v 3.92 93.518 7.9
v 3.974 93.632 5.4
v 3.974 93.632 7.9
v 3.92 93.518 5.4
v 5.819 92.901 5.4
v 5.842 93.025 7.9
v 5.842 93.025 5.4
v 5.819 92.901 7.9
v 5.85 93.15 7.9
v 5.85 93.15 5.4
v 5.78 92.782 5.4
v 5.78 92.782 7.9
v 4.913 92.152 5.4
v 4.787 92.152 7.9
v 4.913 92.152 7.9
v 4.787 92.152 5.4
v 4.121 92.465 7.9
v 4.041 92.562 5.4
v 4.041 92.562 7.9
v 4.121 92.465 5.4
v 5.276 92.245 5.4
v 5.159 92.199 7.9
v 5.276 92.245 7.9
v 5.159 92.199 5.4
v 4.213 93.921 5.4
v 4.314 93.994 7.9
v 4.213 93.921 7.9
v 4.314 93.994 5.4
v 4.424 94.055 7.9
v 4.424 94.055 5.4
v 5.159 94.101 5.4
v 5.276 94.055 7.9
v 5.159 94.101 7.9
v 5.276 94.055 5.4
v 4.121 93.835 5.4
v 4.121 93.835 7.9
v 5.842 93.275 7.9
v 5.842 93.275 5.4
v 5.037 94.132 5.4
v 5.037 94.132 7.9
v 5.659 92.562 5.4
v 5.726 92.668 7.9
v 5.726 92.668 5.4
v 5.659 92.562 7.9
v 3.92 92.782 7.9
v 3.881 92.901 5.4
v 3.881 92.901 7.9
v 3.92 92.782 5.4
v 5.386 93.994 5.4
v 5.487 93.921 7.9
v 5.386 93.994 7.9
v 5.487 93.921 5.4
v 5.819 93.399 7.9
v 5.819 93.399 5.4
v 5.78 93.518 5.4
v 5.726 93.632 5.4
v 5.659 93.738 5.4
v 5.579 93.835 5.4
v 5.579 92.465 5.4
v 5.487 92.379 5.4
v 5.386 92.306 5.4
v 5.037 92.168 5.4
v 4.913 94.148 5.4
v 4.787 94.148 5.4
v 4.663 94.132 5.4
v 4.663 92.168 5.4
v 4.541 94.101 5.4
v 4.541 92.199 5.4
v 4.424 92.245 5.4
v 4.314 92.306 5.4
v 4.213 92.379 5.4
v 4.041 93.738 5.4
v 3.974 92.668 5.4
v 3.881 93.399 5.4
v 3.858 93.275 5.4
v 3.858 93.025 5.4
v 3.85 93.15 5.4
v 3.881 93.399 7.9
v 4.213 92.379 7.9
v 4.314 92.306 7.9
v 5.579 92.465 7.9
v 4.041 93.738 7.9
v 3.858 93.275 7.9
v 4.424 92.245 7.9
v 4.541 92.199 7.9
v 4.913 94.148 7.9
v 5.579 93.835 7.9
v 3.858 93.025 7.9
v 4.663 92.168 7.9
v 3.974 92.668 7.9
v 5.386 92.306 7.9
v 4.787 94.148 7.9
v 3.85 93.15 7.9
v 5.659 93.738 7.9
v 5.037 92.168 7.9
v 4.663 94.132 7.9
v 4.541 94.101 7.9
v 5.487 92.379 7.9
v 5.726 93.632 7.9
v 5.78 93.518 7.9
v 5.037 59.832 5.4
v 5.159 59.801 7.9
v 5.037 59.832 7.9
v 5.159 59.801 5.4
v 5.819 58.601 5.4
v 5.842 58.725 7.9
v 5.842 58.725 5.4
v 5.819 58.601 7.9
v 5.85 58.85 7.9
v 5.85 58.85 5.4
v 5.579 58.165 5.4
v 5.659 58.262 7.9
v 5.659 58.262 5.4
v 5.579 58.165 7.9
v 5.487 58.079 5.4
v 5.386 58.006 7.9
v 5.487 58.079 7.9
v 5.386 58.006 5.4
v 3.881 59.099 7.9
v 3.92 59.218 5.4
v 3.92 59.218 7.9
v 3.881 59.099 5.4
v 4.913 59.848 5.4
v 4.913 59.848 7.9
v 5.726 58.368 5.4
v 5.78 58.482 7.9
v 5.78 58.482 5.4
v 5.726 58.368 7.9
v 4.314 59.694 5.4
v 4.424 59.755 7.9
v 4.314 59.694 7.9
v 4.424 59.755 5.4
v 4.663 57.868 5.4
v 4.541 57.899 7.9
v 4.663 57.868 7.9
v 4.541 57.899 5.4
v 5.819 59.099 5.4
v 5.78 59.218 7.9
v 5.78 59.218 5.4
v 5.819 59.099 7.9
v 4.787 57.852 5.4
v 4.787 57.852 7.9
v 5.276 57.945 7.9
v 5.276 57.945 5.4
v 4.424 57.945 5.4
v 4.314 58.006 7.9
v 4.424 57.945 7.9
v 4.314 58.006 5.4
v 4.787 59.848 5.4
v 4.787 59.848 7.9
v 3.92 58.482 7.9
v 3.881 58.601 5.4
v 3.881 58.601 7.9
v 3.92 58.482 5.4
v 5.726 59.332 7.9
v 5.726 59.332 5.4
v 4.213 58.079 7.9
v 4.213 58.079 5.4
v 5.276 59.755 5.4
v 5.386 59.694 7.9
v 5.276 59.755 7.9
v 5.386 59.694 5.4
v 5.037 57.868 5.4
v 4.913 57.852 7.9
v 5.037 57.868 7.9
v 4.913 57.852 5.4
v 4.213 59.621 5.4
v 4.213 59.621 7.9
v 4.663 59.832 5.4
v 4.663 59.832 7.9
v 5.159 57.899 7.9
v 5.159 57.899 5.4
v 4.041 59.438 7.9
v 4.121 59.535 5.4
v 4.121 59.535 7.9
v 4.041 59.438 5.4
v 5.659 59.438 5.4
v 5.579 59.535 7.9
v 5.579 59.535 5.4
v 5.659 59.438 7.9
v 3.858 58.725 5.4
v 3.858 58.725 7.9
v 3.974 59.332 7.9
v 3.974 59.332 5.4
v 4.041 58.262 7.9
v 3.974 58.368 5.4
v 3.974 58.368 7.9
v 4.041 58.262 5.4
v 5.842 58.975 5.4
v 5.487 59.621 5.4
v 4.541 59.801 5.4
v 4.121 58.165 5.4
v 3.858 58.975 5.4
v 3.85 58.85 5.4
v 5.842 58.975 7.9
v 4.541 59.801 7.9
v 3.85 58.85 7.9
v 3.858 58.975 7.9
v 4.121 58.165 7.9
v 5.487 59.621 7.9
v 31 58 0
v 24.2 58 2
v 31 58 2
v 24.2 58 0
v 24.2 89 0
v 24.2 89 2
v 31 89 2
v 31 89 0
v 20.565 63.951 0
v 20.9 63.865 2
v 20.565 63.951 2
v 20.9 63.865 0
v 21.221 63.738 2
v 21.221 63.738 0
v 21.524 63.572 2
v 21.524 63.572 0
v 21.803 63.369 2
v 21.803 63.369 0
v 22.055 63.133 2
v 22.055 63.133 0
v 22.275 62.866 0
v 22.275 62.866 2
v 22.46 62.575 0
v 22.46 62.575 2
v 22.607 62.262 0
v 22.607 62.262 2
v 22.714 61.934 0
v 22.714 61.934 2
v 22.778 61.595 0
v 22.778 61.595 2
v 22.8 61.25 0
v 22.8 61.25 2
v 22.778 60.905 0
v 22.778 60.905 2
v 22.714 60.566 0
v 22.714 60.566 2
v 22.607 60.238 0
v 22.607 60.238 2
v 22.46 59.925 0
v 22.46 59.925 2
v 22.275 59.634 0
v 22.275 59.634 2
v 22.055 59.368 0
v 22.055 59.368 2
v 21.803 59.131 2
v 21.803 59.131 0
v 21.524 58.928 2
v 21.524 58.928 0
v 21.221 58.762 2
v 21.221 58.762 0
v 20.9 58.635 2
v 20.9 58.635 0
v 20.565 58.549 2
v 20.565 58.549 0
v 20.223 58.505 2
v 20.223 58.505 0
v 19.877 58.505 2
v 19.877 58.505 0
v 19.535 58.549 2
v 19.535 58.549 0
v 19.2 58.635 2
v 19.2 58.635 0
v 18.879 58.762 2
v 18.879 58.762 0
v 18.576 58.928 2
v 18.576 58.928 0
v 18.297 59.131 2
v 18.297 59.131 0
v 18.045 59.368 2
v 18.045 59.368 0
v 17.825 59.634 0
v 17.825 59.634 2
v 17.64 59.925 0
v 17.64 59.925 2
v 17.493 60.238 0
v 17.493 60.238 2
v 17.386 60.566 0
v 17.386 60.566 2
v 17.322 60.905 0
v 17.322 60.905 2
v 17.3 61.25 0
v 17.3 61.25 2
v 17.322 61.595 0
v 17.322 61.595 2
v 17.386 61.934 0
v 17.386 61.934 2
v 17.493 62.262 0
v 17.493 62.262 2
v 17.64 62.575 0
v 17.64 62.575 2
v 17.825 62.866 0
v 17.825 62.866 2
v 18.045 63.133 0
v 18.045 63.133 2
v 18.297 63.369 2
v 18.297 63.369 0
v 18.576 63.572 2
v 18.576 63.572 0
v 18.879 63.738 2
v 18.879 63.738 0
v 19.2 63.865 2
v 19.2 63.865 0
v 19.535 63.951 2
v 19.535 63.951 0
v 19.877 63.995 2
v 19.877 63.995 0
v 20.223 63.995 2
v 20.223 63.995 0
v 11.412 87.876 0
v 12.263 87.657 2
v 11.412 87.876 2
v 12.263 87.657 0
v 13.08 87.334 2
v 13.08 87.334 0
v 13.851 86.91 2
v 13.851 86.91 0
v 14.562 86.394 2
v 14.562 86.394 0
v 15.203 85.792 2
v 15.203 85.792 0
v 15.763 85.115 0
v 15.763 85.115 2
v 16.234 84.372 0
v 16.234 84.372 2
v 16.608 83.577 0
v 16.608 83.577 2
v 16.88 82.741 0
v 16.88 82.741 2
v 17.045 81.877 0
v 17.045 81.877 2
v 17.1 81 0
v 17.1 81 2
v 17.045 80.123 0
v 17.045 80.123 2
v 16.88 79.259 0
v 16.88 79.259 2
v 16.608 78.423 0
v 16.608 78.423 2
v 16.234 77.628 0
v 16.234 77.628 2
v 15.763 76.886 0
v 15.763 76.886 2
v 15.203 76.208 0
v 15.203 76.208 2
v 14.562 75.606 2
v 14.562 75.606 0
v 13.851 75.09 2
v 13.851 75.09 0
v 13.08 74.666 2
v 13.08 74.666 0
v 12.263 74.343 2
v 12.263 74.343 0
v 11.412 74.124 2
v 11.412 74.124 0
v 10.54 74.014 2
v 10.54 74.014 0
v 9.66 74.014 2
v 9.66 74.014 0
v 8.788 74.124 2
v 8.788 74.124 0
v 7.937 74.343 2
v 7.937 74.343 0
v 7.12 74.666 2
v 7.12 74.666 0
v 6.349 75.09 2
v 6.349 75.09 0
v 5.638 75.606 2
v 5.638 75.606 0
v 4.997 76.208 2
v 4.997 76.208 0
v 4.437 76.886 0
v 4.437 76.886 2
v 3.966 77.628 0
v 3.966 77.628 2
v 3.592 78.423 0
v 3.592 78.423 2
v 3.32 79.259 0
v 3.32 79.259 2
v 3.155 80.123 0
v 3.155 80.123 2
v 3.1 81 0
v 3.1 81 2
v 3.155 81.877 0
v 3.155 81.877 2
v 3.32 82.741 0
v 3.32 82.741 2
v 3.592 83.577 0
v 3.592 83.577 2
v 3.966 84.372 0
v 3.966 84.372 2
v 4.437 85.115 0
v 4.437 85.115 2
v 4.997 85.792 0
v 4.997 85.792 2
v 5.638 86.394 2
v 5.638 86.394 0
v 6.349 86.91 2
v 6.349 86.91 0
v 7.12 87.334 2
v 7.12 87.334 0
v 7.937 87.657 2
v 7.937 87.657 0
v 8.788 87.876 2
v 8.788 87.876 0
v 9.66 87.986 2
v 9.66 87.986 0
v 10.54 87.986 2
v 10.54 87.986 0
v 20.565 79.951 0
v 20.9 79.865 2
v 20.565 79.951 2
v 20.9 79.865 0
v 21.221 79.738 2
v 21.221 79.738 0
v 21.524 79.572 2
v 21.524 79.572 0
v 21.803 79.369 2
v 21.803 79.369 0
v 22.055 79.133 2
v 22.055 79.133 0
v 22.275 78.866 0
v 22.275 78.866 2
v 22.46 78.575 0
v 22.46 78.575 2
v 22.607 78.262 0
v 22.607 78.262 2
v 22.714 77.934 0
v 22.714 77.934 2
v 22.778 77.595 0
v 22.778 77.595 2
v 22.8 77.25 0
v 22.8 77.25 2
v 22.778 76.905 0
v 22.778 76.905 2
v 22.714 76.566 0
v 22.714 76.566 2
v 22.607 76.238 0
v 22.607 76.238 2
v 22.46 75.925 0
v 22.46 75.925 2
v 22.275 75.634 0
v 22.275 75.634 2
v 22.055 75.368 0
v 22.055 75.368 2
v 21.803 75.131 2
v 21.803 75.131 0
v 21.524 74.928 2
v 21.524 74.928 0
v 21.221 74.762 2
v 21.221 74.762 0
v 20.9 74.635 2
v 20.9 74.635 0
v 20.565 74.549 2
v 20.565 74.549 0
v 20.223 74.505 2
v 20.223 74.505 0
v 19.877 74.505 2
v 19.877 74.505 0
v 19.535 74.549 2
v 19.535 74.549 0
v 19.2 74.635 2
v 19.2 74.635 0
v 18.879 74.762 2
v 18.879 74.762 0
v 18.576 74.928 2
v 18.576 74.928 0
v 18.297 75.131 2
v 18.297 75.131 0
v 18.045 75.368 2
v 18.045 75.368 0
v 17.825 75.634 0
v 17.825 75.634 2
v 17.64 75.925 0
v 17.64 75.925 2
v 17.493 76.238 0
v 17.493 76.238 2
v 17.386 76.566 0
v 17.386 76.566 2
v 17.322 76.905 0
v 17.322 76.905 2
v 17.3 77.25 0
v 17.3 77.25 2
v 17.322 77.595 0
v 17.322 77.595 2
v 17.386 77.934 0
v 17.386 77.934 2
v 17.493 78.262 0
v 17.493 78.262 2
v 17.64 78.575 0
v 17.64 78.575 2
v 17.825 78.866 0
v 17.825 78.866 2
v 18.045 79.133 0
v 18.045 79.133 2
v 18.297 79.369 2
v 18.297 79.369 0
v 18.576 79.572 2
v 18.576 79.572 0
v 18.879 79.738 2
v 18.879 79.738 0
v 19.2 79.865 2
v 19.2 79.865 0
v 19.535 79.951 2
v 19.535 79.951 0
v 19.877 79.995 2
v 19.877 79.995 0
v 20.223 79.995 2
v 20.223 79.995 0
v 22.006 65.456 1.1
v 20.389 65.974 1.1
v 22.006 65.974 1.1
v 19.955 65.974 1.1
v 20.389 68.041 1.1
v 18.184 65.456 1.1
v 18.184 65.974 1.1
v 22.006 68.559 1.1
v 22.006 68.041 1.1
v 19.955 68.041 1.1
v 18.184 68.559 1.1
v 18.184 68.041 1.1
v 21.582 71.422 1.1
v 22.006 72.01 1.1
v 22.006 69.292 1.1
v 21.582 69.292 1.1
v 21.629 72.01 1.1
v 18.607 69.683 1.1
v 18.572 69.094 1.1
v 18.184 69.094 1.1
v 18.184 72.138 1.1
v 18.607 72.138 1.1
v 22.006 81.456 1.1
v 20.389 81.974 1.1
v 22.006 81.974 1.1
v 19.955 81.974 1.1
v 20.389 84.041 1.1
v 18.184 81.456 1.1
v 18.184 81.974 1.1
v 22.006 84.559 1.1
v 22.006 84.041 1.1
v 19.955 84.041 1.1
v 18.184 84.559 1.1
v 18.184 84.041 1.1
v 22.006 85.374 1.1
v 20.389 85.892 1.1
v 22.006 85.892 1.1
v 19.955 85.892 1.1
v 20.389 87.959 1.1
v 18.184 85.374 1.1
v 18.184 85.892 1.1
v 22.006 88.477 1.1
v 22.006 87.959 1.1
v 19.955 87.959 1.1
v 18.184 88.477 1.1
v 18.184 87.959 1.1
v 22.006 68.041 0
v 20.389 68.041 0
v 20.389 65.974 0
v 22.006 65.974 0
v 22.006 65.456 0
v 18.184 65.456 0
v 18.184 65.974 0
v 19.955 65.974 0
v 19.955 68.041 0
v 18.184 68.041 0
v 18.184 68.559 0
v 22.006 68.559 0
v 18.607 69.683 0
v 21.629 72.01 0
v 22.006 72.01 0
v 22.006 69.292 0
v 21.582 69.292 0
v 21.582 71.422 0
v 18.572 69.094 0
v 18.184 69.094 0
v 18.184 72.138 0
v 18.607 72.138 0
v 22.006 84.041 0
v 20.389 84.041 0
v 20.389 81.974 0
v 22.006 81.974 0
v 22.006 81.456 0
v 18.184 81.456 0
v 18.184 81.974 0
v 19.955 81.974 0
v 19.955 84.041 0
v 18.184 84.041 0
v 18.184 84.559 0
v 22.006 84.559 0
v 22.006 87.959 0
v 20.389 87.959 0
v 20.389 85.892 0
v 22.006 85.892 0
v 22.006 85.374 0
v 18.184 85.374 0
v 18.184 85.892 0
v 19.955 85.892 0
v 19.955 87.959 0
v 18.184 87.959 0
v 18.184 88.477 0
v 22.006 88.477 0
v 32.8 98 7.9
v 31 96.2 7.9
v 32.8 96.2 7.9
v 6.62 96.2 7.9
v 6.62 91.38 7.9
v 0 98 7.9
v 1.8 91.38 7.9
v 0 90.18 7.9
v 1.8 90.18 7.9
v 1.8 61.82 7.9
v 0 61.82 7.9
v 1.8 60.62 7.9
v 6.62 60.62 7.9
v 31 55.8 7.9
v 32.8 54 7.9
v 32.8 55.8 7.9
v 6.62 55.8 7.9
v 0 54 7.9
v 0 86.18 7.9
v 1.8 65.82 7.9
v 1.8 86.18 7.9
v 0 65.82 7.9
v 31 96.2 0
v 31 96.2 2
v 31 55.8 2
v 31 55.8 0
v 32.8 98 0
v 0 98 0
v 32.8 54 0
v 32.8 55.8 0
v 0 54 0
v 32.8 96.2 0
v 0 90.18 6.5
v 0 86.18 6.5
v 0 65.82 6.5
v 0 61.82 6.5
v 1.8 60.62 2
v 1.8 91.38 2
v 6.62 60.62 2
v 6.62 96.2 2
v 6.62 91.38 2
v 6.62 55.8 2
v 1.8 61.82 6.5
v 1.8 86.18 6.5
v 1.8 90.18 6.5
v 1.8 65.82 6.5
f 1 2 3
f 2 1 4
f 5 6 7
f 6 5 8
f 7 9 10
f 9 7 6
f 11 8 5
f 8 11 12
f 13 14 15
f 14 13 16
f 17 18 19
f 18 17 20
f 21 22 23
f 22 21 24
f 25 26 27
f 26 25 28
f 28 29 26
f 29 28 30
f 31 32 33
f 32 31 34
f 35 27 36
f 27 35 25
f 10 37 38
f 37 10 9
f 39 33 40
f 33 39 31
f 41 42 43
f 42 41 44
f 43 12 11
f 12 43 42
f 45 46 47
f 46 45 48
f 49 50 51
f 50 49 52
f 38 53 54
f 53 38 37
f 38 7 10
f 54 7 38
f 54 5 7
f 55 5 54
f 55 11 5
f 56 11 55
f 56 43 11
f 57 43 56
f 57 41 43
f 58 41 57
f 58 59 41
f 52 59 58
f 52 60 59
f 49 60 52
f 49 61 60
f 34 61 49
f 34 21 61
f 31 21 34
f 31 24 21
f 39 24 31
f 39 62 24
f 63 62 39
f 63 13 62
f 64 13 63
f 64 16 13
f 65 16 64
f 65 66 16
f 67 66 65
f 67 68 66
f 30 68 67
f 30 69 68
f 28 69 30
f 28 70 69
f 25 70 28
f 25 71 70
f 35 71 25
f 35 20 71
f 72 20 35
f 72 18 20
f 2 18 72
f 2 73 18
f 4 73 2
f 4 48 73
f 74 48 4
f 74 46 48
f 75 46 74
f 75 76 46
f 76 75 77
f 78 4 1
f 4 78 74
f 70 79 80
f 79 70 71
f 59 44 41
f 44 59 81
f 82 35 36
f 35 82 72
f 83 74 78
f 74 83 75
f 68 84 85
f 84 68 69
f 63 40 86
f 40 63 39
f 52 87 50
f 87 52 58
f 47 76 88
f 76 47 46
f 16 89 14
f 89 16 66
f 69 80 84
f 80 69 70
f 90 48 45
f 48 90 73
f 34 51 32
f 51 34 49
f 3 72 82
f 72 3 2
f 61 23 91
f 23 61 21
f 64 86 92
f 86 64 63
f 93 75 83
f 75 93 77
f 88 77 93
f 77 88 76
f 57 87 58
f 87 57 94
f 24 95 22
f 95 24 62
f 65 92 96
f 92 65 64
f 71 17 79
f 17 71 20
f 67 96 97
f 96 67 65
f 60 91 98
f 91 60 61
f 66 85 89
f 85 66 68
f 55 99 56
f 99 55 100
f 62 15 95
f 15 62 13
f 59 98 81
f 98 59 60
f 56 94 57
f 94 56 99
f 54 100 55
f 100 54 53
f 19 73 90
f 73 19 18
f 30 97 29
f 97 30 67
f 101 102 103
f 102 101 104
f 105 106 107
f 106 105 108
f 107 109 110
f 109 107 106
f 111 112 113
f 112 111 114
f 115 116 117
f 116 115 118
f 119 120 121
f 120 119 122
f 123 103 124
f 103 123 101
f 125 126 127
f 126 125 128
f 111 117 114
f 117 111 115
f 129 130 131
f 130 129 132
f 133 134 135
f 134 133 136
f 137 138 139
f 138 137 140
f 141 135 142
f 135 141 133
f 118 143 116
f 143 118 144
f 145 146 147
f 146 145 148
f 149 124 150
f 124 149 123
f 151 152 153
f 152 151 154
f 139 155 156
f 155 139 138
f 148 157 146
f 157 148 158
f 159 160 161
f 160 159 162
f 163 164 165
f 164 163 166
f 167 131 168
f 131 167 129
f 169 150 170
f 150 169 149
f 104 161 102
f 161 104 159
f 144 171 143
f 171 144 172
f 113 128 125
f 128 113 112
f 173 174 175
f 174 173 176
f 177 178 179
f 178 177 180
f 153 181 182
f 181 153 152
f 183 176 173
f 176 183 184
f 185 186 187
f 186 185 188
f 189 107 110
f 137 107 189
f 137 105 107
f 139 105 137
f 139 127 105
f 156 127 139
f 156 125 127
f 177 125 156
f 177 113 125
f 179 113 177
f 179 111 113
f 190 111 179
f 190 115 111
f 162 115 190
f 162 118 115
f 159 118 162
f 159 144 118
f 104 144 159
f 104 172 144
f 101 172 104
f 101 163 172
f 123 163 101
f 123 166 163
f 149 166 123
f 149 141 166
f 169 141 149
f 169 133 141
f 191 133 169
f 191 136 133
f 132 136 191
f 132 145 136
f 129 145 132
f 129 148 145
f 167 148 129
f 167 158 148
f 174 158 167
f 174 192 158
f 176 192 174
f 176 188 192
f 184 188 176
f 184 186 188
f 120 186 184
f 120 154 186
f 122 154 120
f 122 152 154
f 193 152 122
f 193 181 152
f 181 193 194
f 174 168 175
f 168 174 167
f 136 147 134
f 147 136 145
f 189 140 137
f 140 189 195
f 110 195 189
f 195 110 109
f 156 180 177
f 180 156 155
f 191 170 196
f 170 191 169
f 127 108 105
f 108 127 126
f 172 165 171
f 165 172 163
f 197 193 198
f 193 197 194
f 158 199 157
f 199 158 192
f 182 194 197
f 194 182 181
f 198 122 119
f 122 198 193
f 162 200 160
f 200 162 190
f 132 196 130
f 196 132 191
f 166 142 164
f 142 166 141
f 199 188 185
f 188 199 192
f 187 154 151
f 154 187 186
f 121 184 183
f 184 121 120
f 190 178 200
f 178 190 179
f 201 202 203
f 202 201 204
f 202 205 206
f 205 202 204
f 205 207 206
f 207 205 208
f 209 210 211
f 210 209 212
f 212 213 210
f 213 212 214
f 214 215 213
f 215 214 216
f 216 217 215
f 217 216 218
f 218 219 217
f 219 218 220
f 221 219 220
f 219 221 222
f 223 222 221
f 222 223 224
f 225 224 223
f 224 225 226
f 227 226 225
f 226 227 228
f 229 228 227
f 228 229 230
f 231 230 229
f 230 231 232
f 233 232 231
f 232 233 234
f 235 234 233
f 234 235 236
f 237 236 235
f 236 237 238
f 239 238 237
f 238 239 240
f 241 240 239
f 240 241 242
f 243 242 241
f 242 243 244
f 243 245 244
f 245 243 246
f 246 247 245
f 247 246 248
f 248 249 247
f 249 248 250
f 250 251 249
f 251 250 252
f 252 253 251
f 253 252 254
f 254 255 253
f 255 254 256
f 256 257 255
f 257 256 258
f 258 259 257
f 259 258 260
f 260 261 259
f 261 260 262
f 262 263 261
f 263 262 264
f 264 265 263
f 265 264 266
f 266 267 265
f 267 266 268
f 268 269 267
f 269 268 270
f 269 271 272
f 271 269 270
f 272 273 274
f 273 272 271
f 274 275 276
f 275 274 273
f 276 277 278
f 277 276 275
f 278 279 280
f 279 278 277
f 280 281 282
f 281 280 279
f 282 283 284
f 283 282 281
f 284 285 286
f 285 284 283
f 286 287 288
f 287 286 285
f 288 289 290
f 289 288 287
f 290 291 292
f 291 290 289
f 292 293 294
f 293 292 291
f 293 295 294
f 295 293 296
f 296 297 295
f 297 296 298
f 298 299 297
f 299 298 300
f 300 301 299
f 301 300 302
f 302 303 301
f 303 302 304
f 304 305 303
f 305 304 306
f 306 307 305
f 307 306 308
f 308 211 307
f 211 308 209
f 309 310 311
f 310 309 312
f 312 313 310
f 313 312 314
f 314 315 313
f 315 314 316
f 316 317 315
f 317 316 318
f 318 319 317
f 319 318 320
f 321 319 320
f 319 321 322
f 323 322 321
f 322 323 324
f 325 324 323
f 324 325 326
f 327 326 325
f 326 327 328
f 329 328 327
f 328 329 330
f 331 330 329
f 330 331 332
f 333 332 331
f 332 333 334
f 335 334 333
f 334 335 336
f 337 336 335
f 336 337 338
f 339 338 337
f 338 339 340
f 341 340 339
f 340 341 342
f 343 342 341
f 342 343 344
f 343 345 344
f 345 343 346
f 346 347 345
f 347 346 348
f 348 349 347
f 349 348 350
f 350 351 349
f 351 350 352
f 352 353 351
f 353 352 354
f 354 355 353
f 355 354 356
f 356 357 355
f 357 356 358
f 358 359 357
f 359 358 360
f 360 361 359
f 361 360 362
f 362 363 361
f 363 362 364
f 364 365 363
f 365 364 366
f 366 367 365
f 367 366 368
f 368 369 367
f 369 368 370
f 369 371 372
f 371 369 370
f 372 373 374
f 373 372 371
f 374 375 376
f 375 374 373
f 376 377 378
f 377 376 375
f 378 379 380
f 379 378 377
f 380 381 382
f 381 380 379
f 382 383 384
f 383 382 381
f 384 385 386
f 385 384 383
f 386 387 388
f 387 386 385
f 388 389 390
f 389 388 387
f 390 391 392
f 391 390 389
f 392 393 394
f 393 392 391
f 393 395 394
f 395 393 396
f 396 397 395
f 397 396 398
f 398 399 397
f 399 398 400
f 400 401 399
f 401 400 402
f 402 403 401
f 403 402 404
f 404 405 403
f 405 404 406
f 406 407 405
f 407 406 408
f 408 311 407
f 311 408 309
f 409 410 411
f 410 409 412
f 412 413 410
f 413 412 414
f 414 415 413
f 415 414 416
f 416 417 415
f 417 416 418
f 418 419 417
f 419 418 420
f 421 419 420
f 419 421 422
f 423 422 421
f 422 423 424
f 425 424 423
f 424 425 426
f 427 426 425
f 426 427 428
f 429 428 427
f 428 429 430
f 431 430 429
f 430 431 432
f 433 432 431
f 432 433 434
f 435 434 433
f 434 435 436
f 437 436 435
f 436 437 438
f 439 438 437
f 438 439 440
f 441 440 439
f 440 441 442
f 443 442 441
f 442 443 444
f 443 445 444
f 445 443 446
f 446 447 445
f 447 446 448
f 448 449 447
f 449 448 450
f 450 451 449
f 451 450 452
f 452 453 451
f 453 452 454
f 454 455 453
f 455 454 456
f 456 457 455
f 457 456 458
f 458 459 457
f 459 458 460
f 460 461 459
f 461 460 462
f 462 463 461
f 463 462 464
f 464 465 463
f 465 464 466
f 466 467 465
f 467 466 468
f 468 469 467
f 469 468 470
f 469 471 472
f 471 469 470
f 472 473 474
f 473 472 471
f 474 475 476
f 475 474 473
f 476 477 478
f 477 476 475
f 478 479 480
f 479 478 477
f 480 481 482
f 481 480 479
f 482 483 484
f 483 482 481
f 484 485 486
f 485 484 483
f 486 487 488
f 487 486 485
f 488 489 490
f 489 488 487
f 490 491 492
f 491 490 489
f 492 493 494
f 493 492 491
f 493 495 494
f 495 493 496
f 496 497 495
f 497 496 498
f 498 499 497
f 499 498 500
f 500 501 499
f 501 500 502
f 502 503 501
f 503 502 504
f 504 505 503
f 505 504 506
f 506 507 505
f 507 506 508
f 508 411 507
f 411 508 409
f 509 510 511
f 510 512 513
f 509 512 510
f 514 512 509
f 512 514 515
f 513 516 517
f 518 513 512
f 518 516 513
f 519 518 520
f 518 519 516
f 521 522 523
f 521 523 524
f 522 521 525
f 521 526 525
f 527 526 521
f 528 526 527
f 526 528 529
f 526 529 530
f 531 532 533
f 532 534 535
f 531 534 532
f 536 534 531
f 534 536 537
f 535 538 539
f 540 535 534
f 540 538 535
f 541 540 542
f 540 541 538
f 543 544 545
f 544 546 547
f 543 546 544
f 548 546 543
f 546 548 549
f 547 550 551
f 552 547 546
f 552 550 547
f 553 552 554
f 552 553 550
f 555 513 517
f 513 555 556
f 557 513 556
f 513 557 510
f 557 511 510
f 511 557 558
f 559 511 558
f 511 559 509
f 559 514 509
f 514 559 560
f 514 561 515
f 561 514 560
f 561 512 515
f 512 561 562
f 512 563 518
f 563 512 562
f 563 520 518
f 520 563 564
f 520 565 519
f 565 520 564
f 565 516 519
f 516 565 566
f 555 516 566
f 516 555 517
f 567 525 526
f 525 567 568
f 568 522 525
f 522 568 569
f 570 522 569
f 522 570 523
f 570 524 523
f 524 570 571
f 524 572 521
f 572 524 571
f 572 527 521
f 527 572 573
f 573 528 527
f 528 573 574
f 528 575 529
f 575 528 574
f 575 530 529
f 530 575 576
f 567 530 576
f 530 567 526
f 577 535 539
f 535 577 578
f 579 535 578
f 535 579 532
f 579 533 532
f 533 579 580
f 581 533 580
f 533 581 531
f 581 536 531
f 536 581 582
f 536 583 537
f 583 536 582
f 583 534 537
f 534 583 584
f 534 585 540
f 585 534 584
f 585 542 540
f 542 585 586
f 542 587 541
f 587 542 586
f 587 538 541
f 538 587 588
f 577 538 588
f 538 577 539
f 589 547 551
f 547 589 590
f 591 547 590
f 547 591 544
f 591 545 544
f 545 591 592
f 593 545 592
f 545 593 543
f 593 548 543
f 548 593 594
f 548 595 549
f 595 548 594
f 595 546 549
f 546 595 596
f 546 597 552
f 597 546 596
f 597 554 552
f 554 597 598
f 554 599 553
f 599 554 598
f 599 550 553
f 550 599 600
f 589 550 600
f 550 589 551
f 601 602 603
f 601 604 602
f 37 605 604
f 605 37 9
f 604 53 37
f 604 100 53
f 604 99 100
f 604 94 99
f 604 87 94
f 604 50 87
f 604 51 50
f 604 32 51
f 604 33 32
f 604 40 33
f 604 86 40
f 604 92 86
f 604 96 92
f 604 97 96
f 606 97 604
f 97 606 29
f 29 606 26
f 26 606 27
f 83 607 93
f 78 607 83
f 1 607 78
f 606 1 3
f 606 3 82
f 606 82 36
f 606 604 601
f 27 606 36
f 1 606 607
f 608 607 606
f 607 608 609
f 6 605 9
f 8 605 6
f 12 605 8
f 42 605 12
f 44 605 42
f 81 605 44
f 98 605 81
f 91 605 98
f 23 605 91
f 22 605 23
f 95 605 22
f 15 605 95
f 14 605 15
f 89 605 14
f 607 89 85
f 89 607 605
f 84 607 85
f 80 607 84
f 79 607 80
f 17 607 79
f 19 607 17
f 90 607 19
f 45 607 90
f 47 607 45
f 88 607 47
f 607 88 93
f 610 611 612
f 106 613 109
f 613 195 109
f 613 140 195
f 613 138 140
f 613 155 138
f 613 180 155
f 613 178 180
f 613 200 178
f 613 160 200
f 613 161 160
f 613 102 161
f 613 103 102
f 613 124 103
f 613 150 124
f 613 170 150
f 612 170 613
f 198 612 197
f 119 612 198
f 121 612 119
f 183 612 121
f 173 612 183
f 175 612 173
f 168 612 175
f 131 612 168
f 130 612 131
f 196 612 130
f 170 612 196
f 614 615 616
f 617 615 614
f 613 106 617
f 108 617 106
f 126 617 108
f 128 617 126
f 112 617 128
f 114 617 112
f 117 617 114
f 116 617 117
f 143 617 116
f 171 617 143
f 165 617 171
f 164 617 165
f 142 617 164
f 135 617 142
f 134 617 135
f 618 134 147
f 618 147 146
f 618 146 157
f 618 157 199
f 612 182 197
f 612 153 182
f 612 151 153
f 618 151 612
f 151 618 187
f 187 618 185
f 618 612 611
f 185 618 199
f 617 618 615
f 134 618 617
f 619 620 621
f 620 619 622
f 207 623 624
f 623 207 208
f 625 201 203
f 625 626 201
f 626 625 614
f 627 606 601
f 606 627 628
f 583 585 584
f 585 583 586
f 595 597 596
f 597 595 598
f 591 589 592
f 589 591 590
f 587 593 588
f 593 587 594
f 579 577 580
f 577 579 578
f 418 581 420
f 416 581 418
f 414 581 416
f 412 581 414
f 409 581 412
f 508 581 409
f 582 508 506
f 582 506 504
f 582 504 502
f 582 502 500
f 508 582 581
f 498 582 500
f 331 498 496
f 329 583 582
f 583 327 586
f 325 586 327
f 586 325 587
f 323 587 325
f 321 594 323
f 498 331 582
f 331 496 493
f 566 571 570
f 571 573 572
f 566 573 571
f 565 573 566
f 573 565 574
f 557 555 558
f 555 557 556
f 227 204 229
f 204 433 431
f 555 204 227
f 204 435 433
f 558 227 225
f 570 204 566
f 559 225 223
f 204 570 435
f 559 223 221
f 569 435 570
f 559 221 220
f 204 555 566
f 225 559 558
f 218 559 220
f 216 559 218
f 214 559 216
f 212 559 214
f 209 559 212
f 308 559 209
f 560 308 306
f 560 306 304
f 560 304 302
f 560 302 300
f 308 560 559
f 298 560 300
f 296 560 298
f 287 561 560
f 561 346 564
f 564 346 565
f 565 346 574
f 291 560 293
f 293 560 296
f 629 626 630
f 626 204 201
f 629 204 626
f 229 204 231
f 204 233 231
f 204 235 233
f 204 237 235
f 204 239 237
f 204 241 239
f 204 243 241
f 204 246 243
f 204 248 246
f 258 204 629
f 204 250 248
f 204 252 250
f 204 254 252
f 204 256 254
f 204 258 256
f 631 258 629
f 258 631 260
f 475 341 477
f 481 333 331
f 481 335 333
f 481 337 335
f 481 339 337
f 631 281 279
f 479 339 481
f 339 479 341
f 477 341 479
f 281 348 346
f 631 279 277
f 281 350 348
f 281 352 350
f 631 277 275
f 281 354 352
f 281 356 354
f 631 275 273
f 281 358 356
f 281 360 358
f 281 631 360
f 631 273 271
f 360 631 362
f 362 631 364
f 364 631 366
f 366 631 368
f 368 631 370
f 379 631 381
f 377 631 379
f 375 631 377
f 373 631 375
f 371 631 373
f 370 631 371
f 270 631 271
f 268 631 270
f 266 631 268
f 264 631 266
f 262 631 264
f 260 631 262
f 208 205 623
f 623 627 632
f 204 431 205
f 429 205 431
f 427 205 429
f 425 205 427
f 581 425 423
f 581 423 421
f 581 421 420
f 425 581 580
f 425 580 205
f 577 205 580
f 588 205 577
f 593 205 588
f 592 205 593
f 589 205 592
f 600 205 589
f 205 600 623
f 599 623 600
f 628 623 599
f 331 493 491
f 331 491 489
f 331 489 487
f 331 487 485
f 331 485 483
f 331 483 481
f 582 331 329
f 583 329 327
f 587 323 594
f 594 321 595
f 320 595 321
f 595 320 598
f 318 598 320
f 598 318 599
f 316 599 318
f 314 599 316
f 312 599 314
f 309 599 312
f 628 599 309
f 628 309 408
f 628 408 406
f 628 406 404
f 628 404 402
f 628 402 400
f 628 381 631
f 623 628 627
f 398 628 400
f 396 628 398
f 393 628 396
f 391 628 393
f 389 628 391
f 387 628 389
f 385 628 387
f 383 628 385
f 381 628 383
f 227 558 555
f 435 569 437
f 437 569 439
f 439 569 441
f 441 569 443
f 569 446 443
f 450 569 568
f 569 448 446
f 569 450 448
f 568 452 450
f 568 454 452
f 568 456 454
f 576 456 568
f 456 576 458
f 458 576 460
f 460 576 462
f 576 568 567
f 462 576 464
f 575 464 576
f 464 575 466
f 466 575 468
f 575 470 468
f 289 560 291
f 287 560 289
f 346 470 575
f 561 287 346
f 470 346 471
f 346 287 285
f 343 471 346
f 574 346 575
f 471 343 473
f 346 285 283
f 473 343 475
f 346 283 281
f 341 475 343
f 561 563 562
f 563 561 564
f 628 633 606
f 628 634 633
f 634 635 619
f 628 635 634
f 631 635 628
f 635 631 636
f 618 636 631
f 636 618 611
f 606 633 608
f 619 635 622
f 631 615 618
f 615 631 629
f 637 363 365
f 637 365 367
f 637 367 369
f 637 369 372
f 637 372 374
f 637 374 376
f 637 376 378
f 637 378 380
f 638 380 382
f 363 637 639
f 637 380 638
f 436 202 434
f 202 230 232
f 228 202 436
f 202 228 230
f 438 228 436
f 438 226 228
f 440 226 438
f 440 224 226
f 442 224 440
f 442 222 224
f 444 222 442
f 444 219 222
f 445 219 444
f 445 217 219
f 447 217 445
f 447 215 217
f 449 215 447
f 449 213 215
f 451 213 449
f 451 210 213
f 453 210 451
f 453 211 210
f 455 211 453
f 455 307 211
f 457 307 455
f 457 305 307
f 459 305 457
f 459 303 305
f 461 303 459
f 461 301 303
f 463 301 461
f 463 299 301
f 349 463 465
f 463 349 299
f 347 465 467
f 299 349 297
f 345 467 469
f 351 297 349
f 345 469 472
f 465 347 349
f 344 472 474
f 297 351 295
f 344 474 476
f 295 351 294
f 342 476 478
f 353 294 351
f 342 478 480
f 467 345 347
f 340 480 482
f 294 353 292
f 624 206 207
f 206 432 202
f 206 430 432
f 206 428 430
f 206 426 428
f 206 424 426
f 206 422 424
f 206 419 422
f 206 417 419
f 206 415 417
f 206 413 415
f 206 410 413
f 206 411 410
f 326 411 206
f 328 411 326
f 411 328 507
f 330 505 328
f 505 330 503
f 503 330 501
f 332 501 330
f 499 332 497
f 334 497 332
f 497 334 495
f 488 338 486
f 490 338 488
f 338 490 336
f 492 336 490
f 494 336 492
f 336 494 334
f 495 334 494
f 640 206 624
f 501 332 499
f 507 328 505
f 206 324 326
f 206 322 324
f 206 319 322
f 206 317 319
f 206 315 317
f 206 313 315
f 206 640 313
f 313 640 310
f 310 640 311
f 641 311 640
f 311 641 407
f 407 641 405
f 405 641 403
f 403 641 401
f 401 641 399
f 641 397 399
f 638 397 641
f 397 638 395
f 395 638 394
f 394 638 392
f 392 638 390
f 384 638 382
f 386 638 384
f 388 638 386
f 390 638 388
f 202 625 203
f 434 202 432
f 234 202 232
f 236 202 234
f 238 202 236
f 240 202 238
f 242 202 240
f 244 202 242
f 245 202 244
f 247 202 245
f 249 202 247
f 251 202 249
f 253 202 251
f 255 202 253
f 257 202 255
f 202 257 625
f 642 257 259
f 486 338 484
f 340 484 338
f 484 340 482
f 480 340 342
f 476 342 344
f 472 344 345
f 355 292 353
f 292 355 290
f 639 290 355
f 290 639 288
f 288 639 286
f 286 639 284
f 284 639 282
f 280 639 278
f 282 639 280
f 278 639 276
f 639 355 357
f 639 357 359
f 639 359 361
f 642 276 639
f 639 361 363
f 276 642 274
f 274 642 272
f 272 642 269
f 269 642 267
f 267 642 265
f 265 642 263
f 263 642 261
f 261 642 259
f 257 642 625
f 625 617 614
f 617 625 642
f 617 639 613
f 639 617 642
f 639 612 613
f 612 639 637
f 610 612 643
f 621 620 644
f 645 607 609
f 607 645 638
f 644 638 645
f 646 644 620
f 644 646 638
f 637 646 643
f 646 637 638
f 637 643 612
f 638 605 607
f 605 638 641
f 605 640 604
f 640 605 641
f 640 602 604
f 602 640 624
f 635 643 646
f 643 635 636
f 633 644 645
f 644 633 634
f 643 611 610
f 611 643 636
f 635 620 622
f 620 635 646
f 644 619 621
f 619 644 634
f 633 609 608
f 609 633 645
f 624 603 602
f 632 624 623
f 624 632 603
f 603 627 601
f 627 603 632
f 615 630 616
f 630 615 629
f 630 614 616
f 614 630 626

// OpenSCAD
// alle Angaben in mm

$fn = 50;

// Entwicklungs-Parameter
render_bottom = false;
render_top_1 = true;
render_top_2 = false;
render_exploded = true;

//
// vorgegebene Parameter
//

case_wall_thickness = 1.8;
case_wall_inset = 0.2;

circuit_board_length = 60;
circuit_board_length_top_1 = 29;
circuit_board_width = 40;
circuit_board_height = 1.6;
circuit_height_above_board_1 = 7.7 - case_wall_thickness;
circuit_height_above_board_2 = 16;
circuit_height_below_board = 4;

corner_offset = 0; // Rundung der Gehäuseecken

// die 4 Löcher an den Seiten der Platine für die Befestigung
circuit_board_hole_diameter = 2.1;
circuit_board_hole_offset = 1.8;
circuit_board_holder_height = 3.5;

// Bauelemente

// Druckknopf
button_diameter = 14;
button_offset_front = 1.1;
button_offset_right = 8;

// ESP
// soviel steht der ESP über die Platine hinaus
board_overhang = 4;

// Sensor-Anschlüsse
// Abstand vom Platinenrand
connector_offset_left = 7;
connector_offset_right = 2;
connector_width = 8.8;

// LEDs
led_diameter = 5.5;
led_offset_front = 15.3;
led_offset_right_1 = 16;
led_offset_right_2 = 32;

// Gehäuseöffner (Platz für Schraubenzieher zum aufhebeln)
case_opener_width = 4;
case_opener_height = 1.4;

// USB-Anschluss
// offsets relativ zur Platine
usb_connector_offset_right = 19;
usb_connector_offset_bottom = 13;
usb_connector_width = 8;
usb_connector_height = 3;

// Stromversorgung Anschluss
// offsets relativ zur Platine
battery_connector_offset_back = 4;
battery_connector_offset_bottom = 2;
battery_connector_width = 6;
battery_connector_height = 2.7;

// Halterung Gehäuse auf Batteriefach
battery_case_height = 20;
battery_case_holder_thickness = 1;
battery_case_holder_width = 18;
battery_case_holder_overlap = 4;

//
// berechnete Parameter
//

circuit_board_length_inset = circuit_board_length + 2*case_wall_inset;
circuit_board_length_top_1_inset = circuit_board_length_top_1 + case_wall_inset;
circuit_board_width_inset = circuit_board_width + 2*case_wall_inset;
circuit_board_length_top_2 = circuit_board_length - circuit_board_length_top_1;
circuit_board_length_top_2_inset = circuit_board_length_top_2 + case_wall_inset;

circuit_board_holder_diameter = circuit_board_hole_diameter - 0.3;
circuit_board_holder_offset = circuit_board_hole_offset + 0.1;
circuit_board_holder_hole_diameter = circuit_board_holder_diameter + 0.2; // fixate the board but do not connect too hard
circuit_board_holder_hole_offset = circuit_board_hole_offset + 0.05;

circuit_board_holder_total_offset = circuit_board_holder_offset + circuit_board_holder_diameter/2;

circuit_board_holder_hole_total_offset = circuit_board_holder_hole_offset + circuit_board_holder_hole_diameter/2;

case_length = circuit_board_length + board_overhang + case_wall_thickness * 2 + case_wall_inset * 2;
case_length_top_1 = circuit_board_length_top_1 + case_wall_thickness + case_wall_inset;
case_length_top_2 = circuit_board_length_top_2 + board_overhang + case_wall_thickness + case_wall_inset;
case_width = circuit_board_width + case_wall_thickness * 2 + case_wall_inset * 2;
circuit_top = case_wall_thickness + case_wall_inset + circuit_height_below_board;
case_height_lower = circuit_top + circuit_board_height;
case_height_upper_1 = circuit_height_above_board_1 + case_wall_inset + case_wall_thickness;
case_height_upper_2 = circuit_height_above_board_2 + case_wall_inset + case_wall_thickness;

hole_stand_size = case_wall_inset + circuit_board_hole_diameter + circuit_board_hole_offset * 1.4;
hole_pillar_diameter = circuit_board_hole_diameter * 0.9;

button_radius = button_diameter / 2;
led_radius = led_diameter / 2;

battery_case_holder_height = battery_case_holder_overlap + case_height_lower + battery_case_height + battery_case_holder_thickness;

// Rendering-Parameter
rotate_top = [render_exploded ? 180 : 0, 0, 0];
translate_top_1 = render_exploded ? [0, case_width*2 + 10, case_height_upper_1] : [0, 0, case_height_lower];
translate_top_2 = render_exploded ? [case_length_top_1 + 3, case_width*2 + 10, case_height_upper_2] : [case_length_top_1, 0, case_height_lower];

// Gehäuse Unterteil
if (render_bottom) {
    difference() {
        // bottom
        linear_extrude(case_height_lower)
            offset(corner_offset) offset(-corner_offset)
                square([case_length, case_width]);
        
        // lower layer cutout
        translate([case_wall_thickness, case_wall_thickness, case_wall_thickness]) {
            linear_extrude(case_height_lower + circuit_board_height + 1) {
                lower_layer_cutout_2d(false);
            }
        }

        // upper layer cutout
        translate([case_wall_thickness, case_wall_thickness, 
                    case_wall_thickness + case_wall_inset + circuit_height_below_board]) {
            linear_extrude(circuit_board_height + 1) {
                polygon([
                    // bottom left
                    [0, 0],
                    // top left
                    [0, circuit_board_width_inset],
                    // top right
                    [circuit_board_length_inset, circuit_board_width_inset],
                    [circuit_board_length_inset, circuit_board_width_inset - hole_stand_size],
                    [circuit_board_length_inset + board_overhang, circuit_board_width_inset - hole_stand_size],
                    // bottom right
                    [circuit_board_length_inset + board_overhang, hole_stand_size],
                    [circuit_board_length_inset, hole_stand_size],
                    [circuit_board_length_inset, 0]
                ]);
            }
        }
    }
    
    // circuit board halter säulen
    translate([case_wall_thickness + case_wall_inset, case_wall_thickness + case_wall_inset, circuit_top]) {
        translate([circuit_board_holder_total_offset, circuit_board_holder_total_offset, 0])
            cylinder(h = circuit_board_holder_height, d = circuit_board_holder_diameter, center=false);
        translate([circuit_board_length - circuit_board_holder_total_offset, circuit_board_holder_total_offset, 0])
            cylinder(h = circuit_board_holder_height, d = circuit_board_holder_diameter, center=false);
        translate([circuit_board_holder_total_offset, circuit_board_width - circuit_board_holder_total_offset, 0])
            cylinder(h = circuit_board_holder_height, d = circuit_board_holder_diameter, center=false);
        translate([circuit_board_length - circuit_board_holder_total_offset, circuit_board_width - circuit_board_holder_total_offset, 0])
            cylinder(h = circuit_board_holder_height, d = circuit_board_holder_diameter, center=false);
    }
}

// Gehäuse Oberteil 1
if (render_top_1) {
    translate(translate_top_1) rotate(rotate_top) {
        difference() {
            // top
            linear_extrude(case_height_upper_1)
                offset(corner_offset) offset (-corner_offset)
                    square([case_length_top_1, case_width]);
            
            // inner cutout
            translate([case_wall_thickness, case_wall_thickness, -1])
            linear_extrude(circuit_height_above_board_1 + 1)
                lower_layer_cutout_2d();
            
            // parts cutouts
            translate([case_wall_thickness + case_wall_inset, case_wall_thickness + case_wall_inset, 
                        circuit_height_above_board_1 - 1]) {
                linear_extrude(case_wall_thickness + 2) {
                    // button
                    translate([button_offset_front + button_radius, button_offset_right + button_radius])
                        circle(button_radius);
                    
                    // LEDs
                    translate([led_offset_front + led_radius, led_offset_right_1 + led_radius])
                        circle(led_radius);
                    translate([led_offset_front + led_radius, led_offset_right_2 + led_radius])
                        circle(led_radius);
                    
                    // connectors
                    translate([case_length_top_1 - connector_width, connector_offset_left])
                        square([connector_width + 1, circuit_board_width - connector_offset_left - connector_offset_right]);
                    
                }
                
                // connector labels
                translate([0, 0, case_wall_thickness / 2 + 1]) linear_extrude(case_wall_thickness / 2 + 1) {
                    translate([led_offset_front + led_radius, led_offset_right_1 - 1]) rotate(-90)
                      text("HH", size=4, valign="center");
                    translate([led_offset_front + led_radius, led_offset_right_2 - 1]) rotate(-90)
                      text("HZ", size=4, valign="center");
                }
            }
            
            // case opener cutout
            translate([-1, 0, -1]) {
                case_opener_cutout();
            }
            
            // circuit board halter säulen
            translate([case_wall_thickness + case_wall_inset, case_wall_thickness + case_wall_inset, -1]) {
                translate([circuit_board_holder_hole_total_offset, circuit_board_holder_hole_total_offset, 0])
                    cylinder(h = circuit_board_holder_height, d = circuit_board_holder_hole_diameter);
                translate([circuit_board_holder_hole_total_offset, circuit_board_width - circuit_board_holder_hole_total_offset, 0])
                    cylinder(h = circuit_board_holder_height, d = circuit_board_holder_hole_diameter);
            }
        }
        
        translate([case_length_top_1, 0])
            upper_case_connectors();
    }
}

// Gehäuse Oberteil 2
if (render_top_2) {
    translate(translate_top_2) rotate(rotate_top) {
        difference() {
            // top
            linear_extrude(case_height_upper_2)
                offset(corner_offset) offset (-corner_offset)
                    square([case_length_top_2, case_width]);
            
            // main cutout
            translate([- circuit_board_length_top_1, case_wall_thickness, -1])
            linear_extrude(circuit_height_above_board_2 + 1)
                lower_layer_cutout_2d();

            upper_case_connectors(true);
            
            // back wall cutouts
            translate([case_length_top_2 - case_wall_thickness - 1, 0, -1]) {
                // usb connector cutout
                translate([0, usb_connector_offset_right + case_wall_thickness + case_wall_inset, usb_connector_offset_bottom])
                    cube([case_wall_thickness + 2, usb_connector_width, usb_connector_height + 1]);

                // case opener cutout
                case_opener_cutout();
            }
            
            // battery connector cutout
            translate([circuit_board_length_top_2 - battery_connector_offset_back - battery_connector_width, 
                        case_width - case_wall_thickness - 1, 
                        battery_connector_offset_bottom]) {
                translate([0, -hole_stand_size, 0])
                    cube([battery_connector_width, case_wall_thickness + hole_stand_size + 2, battery_connector_height]);
                            
                // +/- sign
                translate([0, case_wall_thickness+2, -0.5]) {
                  rotate([90, 0, 0])
                  linear_extrude(case_wall_thickness) {
                    translate([-4, 0])
                      text("-", size=4);
                    translate([battery_connector_width + 1, 0])
                      text("+", size=4);
                  }
              }
            }
                       
            // circuit board halter säulen
            translate([0, case_wall_thickness + case_wall_inset, -1]) {
                translate([circuit_board_length_top_2 - circuit_board_holder_hole_total_offset, circuit_board_holder_hole_total_offset, 0])
                    cylinder(h = circuit_board_holder_height, d = circuit_board_holder_hole_diameter);
                translate([circuit_board_length_top_2 - circuit_board_holder_hole_total_offset, 
                            circuit_board_width - circuit_board_holder_hole_total_offset, 0])
                    cylinder(h = circuit_board_holder_height, d = circuit_board_holder_hole_diameter);
            }
        }
        
        // esp opening walls
        opening_wall_height = case_height_upper_2 - case_height_upper_1 + case_wall_thickness;
        translate([0, case_wall_thickness, case_height_upper_1 - case_wall_thickness])
            cube([case_wall_thickness, case_wall_inset + connector_offset_left, opening_wall_height]);
        translate([0, case_width - case_wall_thickness- case_wall_inset - connector_offset_right, 
                   case_height_upper_1 - case_wall_thickness])
            cube([case_wall_thickness, connector_offset_right + case_wall_inset, opening_wall_height]);
        
        // battery case holder
        translate([case_length_top_2, (case_width - battery_case_holder_width)/2, -(battery_case_holder_height - battery_case_holder_overlap)]) {
            cube([battery_case_holder_thickness, battery_case_holder_width, battery_case_holder_height]);
            translate([-battery_case_holder_thickness, 0, 0])
                cube([battery_case_holder_thickness, battery_case_holder_width, battery_case_holder_thickness]);
        }
    }
        
}

module case_opener_cutout() {
    linear_extrude(case_opener_height + 1) {
        translate([0, case_wall_thickness + case_wall_inset + hole_stand_size + 1])
            square([case_wall_thickness + 2, case_opener_width]);
        translate([0, case_width - case_wall_thickness - case_wall_inset - hole_stand_size - 1 - case_opener_width])
            square([case_wall_thickness + 2, case_opener_width]);
    }
}

module lower_layer_cutout_2d(top = true) {
    // inset wegen Platz für den ESP
    bottom_left_inset_factor = top ? 0.7 : 1;
    polygon([
        // bottom left
        [hole_stand_size, 0], 
        [hole_stand_size, hole_stand_size], 
        [0, hole_stand_size],
        // top left
        [0, circuit_board_width_inset - hole_stand_size], 
        [hole_stand_size, circuit_board_width_inset - hole_stand_size],
        [hole_stand_size, circuit_board_width_inset],
        // top right
        [circuit_board_length_inset - hole_stand_size, circuit_board_width_inset], 
        [circuit_board_length_inset - hole_stand_size, circuit_board_width_inset - hole_stand_size*bottom_left_inset_factor], 
        [circuit_board_length_inset + board_overhang, circuit_board_width_inset - hole_stand_size*bottom_left_inset_factor],
        // bottom right
        [circuit_board_length_inset + board_overhang, hole_stand_size], 
        [circuit_board_length_inset - hole_stand_size, hole_stand_size], 
        [circuit_board_length_inset - hole_stand_size, 0]
    ]);
}

module upper_case_connectors(negative = false) {
    upper_case_connector(negative);
    translate([0, case_width - case_wall_thickness])
        upper_case_connector(negative);
}

module upper_case_connector(negative) {
    no = negative ? 1 : 0; // negative_offset
    cd = case_wall_thickness*(negative ? 0.95 : 1);
    translate([-no, -no/2, -no]) linear_extrude(case_height_upper_1 + no)
        square([cd+no, cd+no]);
}
